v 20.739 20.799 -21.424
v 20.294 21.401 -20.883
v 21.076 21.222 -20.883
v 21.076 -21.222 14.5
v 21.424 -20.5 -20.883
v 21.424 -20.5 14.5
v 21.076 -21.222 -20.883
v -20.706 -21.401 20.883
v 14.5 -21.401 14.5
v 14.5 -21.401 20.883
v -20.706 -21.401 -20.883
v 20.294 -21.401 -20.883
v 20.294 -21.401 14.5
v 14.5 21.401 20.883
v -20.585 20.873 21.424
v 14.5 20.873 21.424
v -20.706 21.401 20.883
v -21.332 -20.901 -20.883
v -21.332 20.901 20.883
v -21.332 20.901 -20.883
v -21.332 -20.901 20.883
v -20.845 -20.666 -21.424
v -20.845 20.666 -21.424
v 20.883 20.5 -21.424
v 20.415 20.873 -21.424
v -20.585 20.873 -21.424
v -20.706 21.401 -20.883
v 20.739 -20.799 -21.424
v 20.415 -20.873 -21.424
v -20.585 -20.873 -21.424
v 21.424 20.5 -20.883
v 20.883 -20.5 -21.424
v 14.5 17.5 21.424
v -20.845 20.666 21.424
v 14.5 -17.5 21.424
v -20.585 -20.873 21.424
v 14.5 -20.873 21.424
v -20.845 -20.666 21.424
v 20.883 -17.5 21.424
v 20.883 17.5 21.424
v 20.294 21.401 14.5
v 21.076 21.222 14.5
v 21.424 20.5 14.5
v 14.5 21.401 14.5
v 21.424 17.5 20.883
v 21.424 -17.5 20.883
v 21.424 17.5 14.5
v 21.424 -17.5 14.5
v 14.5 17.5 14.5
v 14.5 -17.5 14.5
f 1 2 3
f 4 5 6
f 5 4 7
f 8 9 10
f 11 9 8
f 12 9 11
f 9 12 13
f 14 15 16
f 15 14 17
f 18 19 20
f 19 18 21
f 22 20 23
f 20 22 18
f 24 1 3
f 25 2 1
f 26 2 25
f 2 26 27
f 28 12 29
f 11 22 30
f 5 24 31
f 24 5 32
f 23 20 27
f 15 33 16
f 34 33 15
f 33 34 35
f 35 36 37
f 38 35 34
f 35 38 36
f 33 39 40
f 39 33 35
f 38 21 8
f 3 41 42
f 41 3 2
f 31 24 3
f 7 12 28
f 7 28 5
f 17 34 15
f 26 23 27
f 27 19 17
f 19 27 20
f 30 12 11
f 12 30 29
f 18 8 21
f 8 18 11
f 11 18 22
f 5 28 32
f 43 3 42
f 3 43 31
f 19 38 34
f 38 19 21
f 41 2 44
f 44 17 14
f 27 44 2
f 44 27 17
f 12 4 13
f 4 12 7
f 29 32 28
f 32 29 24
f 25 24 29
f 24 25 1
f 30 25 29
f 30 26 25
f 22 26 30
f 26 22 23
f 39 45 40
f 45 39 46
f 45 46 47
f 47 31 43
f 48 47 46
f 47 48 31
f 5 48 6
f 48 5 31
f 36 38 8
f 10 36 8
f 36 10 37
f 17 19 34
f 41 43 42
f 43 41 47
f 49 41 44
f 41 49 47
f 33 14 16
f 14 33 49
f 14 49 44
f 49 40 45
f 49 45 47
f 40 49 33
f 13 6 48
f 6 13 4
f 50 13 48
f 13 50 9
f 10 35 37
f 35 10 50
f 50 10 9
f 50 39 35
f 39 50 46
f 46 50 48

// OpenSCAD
// file: ../YAPP_Box/library/roundedCubes.scad
// More information on original version: https://danielupshaw.com/openscad-rounded-corners/
//
// Changed by GGS67 to remove some limitations:
//
//  1. Allow radius>length for rounded corners in one axis only (problem reported on 
//     original page in 2015)
//  2. Remove limitation where for apply_to=(x|y|z)max or (x|y|z)min the dimension 
//     of the corresponding perpendicular axis had to be at least 3 times the radius 
//     because of fixed cylinder height. Now cylinder height is always computed not
//     to interferr with opposite corner
//
//--- copy this include to your scad script
// include <./library/roundedCubes.scad>
//
// Set to 0.01 for higher definition curves (renders slower)
$fs = 1.0; //0.25;

module roundedCube(size = [1, 1, 1], center = false, radius = 0.5, apply_to = "all") {
	// If single value, convert to [x, y, z] vector
	size = (size[0] == undef) ? [size, size, size] : size;

    //echo(str("roundedcube([",size[0],size[1],size[2],"], radius=", radius, ", apply_to=",apply_to));
	translate_min = 0;
	translate_xmax = size[0];
	translate_ymax = size[1];
	translate_zmax = size[2];

	diameter = radius * 2;

    function adj2(i,dt,df) = (i==0)?dt:df;
    function adj(i,d) = adj2(i,d,-d);
    function adjR(i) = adj(i,radius);
    
	obj_translate = (center == false) ?
		[0, 0, 0] : [
			-(size[0] / 2),
			-(size[1] / 2),
			-(size[2] / 2)
		];

	translate(v = obj_translate) {
		hull() {
			for (xi = [0:1]) {
                translate_x = [translate_min, translate_xmax][xi];
				x_at = (xi == 0) ? "min" : "max";
				for (yi = [0:1]) {
                    translate_y = [translate_min, translate_ymax][yi];
   				    y_at = (yi == 0) ? "min" : "max";
					for (zi = [0:1]) {
                        translate_z = [translate_min, translate_zmax][zi];
    	     			z_at = (zi == 0) ? "min" : "max";

						if (
							(apply_to == "all") ||
							(apply_to == "xmin" && x_at == "min") || (apply_to == "xmax" && x_at == "max") ||
							(apply_to == "ymin" && y_at == "min") || (apply_to == "ymax" && y_at == "max") ||
							(apply_to == "zmin" && z_at == "min") || (apply_to == "zmax" && z_at == "max")
						) {
                // GGS: Separate translates to asccomodate changes allowing sizes < 3 x radius
    						translate(v = [translate_x+adjR(xi), translate_y+adjR(yi), translate_z+adjR(zi)])
							  sphere(r = radius);
						} else {
							rotate = 
								(apply_to == "xmin" || apply_to == "xmax" || apply_to == "x") ? [0, 90, 0] : (
								(apply_to == "ymin" || apply_to == "ymax" || apply_to == "y") ? [90, 90, 0] :
								[0, 0, 0]
							);
                //Compute cylinder height to make it work with cubbe sizes up to 3xradius which did not work
                // in original because cylinders would "eat" spheres
                            h1 =
								(apply_to == "xmin" || apply_to == "xmax" || apply_to == "x") ? size[0]-radius : (
								(apply_to == "ymin" || apply_to == "ymax" || apply_to == "y") ? size[1]-radius :
								size[2]-radius
							);
                            h2 =
								(apply_to == "xmin" || apply_to == "xmax" || apply_to == "x") ? size[0]/4 : (
								(apply_to == "ymin" || apply_to == "ymax" || apply_to == "y") ? size[1]/4 :
								size[2]/4
							);
                            h=(h1<h2 && h1>0)?h1:h2;
                            height=(h<radius)?h:radius;
                            //echo(str("h1=",h1));
                            //echo(str("h2=",h2));
                            //echo(str("h=",h));
                            //echo(str("height=",height));
                            trans =
								(apply_to == "xmin" || apply_to == "xmax" || apply_to == "x") ? [adj2(xi,0,-height),adjR(yi),adjR(zi)] : (
								(apply_to == "ymin" || apply_to == "ymax" || apply_to == "y") ? [adjR(xi),adj2(yi,0,-height),adjR(zi)] :
								[adjR(xi),adjR(yi),adj2(zi,0,-height)]
							);
                            //echo(trans);
                            translate(v = [translate_x+trans[0], translate_y+trans[1], translate_z+trans[2]])
		  					  rotate(a = rotate)
							    cylinder(h = height, r = radius, center = false);
						}
					}
				}
			}
		}
	}
}
// main file
/*
*   5x5 Box-Cube
*   10 stuks hartvormige doosjes plexiglas 5X5X5 cm transparant X confect
*   Merk: EMMEBI
*   https://amzn.eu/d/60zKORg
*   
*   This cube has a lid and is not square! 
*   There is a difference at the outside of about 2mm between the top (50x50) and 
*   the bottom (48.5x48.5)
*   Inside is about 42.5x42.5 (bottom) and 43.5x43.5 (top)
*/

include <../YAPP_Box/library/roundedCubes.scad>

rib = 43;

module inCube()
{
  difference()
  {
    roundedCube([rib, rib, rib], true, radius = 1.0, apply_to = "all");
    //-- room for hinges
    translate([(rib/2)-3.5, (rib/+2)-2,(rib/2)-3.5]) color("red") cube([7, 4, 7], true);
    translate([(rib/2)-3.5, (rib/-2)+2,(rib/2)-3.5]) color("red") cube([7, 4, 7], true);
  }
  
} //  inCube()

inCube();
